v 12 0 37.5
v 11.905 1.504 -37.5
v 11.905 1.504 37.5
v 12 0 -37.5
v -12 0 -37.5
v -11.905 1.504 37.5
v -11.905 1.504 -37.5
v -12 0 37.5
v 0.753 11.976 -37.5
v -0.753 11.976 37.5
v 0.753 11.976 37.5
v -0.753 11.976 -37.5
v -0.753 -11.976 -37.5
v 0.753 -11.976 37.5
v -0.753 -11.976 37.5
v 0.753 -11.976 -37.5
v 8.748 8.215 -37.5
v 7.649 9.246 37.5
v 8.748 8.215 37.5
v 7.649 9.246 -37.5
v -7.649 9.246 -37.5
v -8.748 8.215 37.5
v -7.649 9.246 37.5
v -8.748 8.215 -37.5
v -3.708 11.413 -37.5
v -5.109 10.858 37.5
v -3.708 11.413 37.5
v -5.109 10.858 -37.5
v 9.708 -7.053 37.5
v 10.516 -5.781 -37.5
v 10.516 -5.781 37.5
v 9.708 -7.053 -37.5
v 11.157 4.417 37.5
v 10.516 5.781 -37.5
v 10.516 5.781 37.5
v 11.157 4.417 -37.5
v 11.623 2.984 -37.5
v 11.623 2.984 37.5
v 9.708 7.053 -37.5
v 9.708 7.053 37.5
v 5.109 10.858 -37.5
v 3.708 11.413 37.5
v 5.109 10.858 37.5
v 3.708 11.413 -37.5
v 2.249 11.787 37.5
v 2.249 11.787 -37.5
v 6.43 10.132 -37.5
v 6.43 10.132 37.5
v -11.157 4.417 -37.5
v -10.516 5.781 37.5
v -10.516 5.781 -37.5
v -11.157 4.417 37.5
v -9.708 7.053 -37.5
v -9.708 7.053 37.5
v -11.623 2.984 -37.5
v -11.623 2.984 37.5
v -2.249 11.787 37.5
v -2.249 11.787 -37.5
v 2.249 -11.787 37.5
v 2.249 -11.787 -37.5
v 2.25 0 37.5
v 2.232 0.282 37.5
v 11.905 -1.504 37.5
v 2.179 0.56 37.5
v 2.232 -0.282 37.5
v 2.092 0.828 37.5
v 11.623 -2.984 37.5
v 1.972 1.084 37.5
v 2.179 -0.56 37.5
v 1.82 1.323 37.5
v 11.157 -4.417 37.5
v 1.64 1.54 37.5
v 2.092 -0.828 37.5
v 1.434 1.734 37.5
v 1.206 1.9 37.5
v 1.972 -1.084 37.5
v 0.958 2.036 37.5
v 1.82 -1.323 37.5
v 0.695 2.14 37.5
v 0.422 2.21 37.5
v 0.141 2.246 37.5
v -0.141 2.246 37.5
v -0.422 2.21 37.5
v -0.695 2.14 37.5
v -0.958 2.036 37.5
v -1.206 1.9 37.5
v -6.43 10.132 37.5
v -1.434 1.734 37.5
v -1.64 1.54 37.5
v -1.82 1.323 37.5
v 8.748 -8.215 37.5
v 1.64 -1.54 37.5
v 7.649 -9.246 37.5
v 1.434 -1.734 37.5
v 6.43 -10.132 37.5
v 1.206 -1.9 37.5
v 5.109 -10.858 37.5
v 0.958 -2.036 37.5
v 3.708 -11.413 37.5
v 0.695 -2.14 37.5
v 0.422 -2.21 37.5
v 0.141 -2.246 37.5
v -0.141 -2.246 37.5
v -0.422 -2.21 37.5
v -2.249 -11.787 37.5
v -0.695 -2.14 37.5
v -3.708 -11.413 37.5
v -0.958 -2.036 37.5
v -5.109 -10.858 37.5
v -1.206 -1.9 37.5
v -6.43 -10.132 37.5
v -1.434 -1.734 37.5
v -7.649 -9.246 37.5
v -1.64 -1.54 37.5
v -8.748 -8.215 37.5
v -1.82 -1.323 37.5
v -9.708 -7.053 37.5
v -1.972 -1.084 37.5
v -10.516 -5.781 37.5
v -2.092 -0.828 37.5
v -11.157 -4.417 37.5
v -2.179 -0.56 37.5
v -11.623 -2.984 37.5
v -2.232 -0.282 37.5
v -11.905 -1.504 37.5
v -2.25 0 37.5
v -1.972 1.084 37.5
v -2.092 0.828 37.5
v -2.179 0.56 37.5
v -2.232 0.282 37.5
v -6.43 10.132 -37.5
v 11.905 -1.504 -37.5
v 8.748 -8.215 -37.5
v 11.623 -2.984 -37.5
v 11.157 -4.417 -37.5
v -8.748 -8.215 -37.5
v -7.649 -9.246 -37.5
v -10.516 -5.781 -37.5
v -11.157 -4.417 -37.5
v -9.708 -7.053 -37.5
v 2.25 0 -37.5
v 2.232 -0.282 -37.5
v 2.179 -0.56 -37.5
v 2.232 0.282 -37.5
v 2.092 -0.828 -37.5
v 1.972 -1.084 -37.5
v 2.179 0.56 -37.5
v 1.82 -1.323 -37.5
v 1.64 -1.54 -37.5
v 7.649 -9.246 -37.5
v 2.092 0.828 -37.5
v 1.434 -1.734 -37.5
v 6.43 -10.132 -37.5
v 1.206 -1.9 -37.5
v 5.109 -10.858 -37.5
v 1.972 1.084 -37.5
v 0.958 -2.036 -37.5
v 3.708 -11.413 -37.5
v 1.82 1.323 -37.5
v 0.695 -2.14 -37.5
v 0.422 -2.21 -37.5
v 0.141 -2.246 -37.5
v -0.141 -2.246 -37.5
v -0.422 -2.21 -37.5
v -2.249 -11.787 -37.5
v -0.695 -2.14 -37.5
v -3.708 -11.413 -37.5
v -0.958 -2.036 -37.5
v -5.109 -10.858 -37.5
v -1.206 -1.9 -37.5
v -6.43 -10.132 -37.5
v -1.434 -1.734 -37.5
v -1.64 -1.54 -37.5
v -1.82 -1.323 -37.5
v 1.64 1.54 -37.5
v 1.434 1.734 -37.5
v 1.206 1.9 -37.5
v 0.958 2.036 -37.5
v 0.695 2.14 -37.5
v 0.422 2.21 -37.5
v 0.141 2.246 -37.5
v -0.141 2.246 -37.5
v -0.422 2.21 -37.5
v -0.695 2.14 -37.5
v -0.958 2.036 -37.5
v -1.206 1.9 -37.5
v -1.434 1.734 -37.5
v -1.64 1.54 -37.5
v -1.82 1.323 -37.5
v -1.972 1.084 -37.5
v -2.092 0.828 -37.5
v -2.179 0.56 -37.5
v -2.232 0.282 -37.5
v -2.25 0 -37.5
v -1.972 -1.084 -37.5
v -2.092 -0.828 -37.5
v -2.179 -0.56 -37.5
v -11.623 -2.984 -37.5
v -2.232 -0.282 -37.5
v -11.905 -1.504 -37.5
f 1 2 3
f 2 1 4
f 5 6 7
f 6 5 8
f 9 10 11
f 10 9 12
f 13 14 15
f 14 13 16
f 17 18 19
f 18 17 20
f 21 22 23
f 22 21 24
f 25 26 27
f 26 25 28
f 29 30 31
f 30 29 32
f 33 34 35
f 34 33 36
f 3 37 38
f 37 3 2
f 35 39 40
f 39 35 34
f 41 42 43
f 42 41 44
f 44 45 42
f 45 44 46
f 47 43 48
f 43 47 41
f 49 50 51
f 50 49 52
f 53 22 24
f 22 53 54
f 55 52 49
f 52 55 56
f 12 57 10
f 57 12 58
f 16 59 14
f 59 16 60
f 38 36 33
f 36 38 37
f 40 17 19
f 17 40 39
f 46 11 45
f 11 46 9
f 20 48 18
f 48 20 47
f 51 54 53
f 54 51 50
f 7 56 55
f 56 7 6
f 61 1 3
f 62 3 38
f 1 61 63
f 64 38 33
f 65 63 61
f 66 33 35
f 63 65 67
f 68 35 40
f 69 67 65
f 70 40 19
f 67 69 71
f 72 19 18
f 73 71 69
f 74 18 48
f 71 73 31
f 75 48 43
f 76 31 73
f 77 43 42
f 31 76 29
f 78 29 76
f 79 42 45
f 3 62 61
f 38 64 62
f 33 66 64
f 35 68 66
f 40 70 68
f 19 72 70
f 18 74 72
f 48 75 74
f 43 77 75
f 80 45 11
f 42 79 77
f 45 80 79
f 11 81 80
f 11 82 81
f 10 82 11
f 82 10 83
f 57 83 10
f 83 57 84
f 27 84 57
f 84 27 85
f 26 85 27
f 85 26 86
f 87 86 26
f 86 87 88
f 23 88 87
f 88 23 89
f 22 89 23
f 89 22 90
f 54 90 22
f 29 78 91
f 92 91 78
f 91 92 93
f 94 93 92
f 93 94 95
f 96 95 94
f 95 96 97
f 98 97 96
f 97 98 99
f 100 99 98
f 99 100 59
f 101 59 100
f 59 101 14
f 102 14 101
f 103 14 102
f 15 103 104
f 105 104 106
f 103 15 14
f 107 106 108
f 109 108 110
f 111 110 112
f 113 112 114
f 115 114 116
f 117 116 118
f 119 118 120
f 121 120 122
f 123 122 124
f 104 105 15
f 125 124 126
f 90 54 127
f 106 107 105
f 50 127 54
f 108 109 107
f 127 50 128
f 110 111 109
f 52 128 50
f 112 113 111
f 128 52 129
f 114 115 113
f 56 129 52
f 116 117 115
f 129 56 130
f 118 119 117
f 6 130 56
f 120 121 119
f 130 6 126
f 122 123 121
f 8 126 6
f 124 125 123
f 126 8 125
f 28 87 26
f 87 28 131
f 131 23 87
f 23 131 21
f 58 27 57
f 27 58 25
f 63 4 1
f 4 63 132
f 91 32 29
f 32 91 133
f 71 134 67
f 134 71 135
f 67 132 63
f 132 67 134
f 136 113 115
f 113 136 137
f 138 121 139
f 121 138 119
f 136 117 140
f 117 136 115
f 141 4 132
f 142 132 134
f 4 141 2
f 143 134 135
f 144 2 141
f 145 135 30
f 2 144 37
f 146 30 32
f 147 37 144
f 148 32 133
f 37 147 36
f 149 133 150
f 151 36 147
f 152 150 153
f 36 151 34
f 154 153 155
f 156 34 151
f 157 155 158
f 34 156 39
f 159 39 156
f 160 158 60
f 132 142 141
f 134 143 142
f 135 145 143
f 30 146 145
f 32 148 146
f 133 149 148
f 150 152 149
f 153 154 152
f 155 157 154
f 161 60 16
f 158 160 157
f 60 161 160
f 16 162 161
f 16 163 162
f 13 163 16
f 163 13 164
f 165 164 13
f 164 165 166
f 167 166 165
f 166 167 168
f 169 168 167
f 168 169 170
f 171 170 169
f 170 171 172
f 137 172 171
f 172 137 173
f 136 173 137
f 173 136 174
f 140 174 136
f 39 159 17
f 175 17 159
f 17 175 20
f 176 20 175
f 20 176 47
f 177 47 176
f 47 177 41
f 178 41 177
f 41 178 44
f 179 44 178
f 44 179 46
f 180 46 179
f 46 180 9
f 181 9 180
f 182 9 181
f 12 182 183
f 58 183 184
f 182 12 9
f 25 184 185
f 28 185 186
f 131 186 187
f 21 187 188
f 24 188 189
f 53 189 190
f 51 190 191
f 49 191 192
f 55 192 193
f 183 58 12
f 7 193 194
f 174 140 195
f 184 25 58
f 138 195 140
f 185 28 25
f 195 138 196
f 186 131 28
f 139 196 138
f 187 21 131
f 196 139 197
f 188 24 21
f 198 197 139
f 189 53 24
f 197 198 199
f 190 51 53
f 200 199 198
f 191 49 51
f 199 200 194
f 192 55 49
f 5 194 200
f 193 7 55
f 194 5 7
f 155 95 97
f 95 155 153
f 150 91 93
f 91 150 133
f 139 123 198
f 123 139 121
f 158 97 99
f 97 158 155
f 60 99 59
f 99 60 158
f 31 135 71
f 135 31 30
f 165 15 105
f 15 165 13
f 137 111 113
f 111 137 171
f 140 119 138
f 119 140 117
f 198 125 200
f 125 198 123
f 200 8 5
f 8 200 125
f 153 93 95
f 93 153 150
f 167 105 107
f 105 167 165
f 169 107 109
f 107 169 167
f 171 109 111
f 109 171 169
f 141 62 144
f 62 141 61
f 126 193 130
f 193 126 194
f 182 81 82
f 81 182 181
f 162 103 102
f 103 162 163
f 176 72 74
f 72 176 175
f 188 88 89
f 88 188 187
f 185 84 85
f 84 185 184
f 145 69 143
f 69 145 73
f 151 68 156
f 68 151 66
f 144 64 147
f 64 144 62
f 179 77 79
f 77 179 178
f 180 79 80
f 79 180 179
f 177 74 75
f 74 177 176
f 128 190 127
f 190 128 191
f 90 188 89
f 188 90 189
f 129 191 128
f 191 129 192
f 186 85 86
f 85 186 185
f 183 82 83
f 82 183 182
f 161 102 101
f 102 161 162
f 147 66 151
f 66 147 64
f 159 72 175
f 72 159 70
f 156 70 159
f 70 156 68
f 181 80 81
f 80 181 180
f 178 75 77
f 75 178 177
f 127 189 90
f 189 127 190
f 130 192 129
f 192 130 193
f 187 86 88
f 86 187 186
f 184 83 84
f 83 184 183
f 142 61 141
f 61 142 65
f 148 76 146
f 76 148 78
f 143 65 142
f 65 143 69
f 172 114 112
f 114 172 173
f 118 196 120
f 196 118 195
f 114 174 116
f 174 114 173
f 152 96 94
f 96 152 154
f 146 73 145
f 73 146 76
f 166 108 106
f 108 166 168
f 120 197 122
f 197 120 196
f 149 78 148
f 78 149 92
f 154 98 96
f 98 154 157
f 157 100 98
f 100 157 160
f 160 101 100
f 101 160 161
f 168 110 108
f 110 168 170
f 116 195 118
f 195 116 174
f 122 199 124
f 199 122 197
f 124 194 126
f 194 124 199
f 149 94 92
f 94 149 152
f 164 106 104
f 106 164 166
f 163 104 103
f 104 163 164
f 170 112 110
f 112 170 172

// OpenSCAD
$fn = 50;


difference() {
	union() {
		translate(v = [0, 0, -37.5000000000]) {
			cylinder(h = 75, r = 12.0000000000);
		}
	}
	union() {
		translate(v = [0, 0, -100.0000000000]) {
			cylinder(h = 200, r = 2.2500000000);
		}
	}
}
